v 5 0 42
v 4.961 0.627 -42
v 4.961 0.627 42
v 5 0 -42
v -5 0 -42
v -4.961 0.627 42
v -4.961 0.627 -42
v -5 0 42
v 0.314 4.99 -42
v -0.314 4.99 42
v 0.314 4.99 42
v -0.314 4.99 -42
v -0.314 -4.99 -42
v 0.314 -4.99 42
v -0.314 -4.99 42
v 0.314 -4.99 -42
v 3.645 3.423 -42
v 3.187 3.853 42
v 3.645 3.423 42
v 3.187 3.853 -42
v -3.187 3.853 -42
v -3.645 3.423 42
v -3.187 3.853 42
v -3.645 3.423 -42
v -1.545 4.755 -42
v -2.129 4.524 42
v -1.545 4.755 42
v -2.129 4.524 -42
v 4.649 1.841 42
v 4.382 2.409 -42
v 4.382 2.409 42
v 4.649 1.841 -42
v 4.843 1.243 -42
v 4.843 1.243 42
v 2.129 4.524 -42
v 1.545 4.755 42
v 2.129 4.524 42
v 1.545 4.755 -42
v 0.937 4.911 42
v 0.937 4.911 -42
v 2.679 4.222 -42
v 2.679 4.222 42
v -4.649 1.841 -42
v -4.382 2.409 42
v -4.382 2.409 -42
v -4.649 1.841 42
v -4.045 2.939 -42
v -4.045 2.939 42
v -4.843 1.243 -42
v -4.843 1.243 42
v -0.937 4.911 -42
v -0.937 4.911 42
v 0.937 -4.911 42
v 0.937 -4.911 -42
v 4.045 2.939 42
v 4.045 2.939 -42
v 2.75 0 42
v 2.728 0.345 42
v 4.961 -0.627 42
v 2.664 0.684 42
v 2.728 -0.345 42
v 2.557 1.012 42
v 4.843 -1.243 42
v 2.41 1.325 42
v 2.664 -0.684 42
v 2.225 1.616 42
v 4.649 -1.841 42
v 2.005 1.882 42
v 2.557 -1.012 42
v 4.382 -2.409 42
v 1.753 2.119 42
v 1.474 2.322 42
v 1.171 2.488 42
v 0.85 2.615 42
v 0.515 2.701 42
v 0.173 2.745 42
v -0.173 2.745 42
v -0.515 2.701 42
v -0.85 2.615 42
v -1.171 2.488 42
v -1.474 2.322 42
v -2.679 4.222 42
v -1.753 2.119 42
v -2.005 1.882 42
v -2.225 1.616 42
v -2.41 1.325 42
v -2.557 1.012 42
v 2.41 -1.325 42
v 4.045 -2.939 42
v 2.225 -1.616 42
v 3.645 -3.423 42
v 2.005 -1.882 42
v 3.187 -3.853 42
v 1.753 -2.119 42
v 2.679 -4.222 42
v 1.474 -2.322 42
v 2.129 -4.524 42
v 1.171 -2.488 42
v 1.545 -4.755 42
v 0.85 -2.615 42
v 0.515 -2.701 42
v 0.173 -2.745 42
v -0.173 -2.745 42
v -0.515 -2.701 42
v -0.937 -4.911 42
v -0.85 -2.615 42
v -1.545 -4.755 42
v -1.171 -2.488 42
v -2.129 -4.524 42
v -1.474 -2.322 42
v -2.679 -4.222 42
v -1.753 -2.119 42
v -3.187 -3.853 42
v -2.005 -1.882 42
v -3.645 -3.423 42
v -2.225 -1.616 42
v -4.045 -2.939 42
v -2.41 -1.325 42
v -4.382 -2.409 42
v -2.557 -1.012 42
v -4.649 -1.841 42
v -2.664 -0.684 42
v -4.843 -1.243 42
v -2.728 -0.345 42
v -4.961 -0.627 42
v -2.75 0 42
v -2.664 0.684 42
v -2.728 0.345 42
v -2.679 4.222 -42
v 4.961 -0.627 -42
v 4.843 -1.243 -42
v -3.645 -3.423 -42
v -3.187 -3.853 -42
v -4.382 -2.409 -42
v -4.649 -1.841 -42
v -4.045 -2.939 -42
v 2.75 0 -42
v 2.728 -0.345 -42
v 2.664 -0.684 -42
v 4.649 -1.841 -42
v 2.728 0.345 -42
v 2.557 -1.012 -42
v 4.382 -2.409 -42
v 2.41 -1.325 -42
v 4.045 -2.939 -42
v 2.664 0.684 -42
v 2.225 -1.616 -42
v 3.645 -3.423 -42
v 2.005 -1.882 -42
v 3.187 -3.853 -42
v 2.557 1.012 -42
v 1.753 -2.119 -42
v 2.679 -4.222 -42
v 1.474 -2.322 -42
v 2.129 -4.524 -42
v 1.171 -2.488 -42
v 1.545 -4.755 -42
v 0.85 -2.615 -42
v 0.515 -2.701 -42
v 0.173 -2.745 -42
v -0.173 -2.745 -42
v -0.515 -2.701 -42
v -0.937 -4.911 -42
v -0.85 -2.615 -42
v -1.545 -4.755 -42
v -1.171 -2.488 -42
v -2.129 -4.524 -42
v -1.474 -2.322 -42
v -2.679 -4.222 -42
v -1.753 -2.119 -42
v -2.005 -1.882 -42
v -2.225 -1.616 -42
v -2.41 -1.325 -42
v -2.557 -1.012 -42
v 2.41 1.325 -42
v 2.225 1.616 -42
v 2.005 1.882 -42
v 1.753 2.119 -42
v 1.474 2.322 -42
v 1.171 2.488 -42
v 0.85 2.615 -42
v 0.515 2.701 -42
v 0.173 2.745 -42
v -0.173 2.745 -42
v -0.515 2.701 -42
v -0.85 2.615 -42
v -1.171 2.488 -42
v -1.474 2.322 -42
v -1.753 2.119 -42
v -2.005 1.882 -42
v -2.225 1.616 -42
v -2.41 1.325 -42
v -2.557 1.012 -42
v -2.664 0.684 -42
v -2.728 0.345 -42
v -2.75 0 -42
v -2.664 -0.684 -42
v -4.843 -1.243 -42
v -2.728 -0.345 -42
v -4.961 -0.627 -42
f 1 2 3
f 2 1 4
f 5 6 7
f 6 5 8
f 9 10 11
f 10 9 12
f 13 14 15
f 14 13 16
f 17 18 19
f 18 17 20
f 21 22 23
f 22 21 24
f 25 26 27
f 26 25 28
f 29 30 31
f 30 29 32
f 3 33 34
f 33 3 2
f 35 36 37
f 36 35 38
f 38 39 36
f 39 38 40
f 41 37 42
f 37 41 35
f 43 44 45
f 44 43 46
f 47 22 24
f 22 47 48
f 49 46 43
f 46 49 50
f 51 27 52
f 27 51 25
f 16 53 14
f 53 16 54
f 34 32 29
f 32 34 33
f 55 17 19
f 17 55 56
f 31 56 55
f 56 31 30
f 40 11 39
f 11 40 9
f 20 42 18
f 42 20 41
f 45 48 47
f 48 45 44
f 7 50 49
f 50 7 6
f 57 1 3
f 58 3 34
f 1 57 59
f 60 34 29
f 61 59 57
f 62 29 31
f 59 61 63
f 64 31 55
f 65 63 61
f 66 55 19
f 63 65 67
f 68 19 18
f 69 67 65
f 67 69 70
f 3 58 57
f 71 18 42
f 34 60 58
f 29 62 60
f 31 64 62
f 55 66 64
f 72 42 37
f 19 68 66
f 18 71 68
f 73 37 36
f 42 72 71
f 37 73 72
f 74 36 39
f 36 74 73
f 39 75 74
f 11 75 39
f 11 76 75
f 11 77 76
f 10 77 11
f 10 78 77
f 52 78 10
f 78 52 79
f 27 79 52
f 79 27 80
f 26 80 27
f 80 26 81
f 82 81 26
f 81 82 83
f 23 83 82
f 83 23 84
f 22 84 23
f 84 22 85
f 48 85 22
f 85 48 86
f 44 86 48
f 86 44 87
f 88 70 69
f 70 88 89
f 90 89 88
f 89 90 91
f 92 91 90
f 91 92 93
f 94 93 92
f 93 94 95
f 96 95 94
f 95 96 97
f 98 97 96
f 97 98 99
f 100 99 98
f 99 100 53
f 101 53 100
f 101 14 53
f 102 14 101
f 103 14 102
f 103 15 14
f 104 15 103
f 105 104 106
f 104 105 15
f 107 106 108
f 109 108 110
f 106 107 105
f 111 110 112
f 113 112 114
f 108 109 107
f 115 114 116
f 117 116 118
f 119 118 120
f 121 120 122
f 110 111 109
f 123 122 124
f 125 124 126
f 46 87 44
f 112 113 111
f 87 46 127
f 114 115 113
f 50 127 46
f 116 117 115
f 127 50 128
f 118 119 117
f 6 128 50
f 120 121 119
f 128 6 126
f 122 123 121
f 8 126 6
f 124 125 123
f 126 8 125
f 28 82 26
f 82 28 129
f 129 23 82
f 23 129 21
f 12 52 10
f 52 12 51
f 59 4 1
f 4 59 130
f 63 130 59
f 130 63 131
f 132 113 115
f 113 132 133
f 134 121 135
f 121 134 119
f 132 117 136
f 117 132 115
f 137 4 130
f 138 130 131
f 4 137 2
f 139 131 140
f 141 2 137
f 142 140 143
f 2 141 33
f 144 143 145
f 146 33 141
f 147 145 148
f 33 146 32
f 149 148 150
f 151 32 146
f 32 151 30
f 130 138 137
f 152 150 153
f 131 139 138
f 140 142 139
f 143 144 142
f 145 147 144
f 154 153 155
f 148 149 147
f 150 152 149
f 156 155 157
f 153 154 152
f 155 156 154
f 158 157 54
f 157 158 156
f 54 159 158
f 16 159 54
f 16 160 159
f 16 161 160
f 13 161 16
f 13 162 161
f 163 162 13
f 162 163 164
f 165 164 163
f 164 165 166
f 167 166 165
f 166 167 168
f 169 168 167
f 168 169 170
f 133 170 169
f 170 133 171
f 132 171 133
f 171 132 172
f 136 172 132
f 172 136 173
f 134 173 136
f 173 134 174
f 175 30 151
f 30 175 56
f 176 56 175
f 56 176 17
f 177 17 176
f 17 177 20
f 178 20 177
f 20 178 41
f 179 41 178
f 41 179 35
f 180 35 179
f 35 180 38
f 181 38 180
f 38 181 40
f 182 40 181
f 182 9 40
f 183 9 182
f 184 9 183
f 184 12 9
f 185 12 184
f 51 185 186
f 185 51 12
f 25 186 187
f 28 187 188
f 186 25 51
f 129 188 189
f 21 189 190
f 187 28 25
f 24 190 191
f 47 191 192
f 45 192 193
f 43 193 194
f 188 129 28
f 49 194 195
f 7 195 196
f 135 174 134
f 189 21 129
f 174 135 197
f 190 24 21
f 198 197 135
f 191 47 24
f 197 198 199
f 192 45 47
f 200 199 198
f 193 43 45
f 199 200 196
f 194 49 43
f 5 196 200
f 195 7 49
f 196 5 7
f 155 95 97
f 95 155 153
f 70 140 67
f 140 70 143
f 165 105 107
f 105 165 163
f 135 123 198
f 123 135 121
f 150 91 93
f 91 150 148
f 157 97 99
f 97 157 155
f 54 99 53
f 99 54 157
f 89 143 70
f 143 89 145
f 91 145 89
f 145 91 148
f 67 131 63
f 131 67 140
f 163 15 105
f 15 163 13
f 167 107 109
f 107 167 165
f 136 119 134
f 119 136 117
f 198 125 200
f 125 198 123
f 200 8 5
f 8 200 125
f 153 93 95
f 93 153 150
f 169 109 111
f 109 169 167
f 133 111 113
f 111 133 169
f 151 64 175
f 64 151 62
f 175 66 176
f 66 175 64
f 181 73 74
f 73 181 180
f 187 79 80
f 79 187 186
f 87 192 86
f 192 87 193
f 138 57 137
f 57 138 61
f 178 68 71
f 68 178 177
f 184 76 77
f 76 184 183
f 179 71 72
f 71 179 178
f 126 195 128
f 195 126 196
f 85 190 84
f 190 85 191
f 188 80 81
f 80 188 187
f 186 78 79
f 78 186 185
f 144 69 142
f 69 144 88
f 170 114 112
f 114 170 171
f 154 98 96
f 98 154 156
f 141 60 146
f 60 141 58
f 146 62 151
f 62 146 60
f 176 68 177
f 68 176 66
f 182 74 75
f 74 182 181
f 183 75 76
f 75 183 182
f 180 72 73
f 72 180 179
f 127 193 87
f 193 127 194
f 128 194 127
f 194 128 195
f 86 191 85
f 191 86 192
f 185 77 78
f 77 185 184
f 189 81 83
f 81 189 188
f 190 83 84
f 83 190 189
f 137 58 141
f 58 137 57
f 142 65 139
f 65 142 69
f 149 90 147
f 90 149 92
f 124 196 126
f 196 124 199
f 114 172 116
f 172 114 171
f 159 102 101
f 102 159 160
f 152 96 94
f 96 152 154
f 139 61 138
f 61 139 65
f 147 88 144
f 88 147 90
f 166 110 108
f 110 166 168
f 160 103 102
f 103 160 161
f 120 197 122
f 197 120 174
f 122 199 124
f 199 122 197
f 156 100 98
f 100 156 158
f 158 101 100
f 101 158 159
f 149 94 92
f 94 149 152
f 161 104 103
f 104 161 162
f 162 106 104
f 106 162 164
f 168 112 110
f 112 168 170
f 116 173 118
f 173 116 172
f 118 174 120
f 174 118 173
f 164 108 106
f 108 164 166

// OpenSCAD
$fn = 50;


difference() {
	union() {
		translate(v = [0, 0, -42.0000000000]) {
			cylinder(h = 84, r = 5.0000000000);
		}
	}
	union() {
		translate(v = [0, 0, -100.0000000000]) {
			cylinder(h = 200, r = 2.7500000000);
		}
	}
}
